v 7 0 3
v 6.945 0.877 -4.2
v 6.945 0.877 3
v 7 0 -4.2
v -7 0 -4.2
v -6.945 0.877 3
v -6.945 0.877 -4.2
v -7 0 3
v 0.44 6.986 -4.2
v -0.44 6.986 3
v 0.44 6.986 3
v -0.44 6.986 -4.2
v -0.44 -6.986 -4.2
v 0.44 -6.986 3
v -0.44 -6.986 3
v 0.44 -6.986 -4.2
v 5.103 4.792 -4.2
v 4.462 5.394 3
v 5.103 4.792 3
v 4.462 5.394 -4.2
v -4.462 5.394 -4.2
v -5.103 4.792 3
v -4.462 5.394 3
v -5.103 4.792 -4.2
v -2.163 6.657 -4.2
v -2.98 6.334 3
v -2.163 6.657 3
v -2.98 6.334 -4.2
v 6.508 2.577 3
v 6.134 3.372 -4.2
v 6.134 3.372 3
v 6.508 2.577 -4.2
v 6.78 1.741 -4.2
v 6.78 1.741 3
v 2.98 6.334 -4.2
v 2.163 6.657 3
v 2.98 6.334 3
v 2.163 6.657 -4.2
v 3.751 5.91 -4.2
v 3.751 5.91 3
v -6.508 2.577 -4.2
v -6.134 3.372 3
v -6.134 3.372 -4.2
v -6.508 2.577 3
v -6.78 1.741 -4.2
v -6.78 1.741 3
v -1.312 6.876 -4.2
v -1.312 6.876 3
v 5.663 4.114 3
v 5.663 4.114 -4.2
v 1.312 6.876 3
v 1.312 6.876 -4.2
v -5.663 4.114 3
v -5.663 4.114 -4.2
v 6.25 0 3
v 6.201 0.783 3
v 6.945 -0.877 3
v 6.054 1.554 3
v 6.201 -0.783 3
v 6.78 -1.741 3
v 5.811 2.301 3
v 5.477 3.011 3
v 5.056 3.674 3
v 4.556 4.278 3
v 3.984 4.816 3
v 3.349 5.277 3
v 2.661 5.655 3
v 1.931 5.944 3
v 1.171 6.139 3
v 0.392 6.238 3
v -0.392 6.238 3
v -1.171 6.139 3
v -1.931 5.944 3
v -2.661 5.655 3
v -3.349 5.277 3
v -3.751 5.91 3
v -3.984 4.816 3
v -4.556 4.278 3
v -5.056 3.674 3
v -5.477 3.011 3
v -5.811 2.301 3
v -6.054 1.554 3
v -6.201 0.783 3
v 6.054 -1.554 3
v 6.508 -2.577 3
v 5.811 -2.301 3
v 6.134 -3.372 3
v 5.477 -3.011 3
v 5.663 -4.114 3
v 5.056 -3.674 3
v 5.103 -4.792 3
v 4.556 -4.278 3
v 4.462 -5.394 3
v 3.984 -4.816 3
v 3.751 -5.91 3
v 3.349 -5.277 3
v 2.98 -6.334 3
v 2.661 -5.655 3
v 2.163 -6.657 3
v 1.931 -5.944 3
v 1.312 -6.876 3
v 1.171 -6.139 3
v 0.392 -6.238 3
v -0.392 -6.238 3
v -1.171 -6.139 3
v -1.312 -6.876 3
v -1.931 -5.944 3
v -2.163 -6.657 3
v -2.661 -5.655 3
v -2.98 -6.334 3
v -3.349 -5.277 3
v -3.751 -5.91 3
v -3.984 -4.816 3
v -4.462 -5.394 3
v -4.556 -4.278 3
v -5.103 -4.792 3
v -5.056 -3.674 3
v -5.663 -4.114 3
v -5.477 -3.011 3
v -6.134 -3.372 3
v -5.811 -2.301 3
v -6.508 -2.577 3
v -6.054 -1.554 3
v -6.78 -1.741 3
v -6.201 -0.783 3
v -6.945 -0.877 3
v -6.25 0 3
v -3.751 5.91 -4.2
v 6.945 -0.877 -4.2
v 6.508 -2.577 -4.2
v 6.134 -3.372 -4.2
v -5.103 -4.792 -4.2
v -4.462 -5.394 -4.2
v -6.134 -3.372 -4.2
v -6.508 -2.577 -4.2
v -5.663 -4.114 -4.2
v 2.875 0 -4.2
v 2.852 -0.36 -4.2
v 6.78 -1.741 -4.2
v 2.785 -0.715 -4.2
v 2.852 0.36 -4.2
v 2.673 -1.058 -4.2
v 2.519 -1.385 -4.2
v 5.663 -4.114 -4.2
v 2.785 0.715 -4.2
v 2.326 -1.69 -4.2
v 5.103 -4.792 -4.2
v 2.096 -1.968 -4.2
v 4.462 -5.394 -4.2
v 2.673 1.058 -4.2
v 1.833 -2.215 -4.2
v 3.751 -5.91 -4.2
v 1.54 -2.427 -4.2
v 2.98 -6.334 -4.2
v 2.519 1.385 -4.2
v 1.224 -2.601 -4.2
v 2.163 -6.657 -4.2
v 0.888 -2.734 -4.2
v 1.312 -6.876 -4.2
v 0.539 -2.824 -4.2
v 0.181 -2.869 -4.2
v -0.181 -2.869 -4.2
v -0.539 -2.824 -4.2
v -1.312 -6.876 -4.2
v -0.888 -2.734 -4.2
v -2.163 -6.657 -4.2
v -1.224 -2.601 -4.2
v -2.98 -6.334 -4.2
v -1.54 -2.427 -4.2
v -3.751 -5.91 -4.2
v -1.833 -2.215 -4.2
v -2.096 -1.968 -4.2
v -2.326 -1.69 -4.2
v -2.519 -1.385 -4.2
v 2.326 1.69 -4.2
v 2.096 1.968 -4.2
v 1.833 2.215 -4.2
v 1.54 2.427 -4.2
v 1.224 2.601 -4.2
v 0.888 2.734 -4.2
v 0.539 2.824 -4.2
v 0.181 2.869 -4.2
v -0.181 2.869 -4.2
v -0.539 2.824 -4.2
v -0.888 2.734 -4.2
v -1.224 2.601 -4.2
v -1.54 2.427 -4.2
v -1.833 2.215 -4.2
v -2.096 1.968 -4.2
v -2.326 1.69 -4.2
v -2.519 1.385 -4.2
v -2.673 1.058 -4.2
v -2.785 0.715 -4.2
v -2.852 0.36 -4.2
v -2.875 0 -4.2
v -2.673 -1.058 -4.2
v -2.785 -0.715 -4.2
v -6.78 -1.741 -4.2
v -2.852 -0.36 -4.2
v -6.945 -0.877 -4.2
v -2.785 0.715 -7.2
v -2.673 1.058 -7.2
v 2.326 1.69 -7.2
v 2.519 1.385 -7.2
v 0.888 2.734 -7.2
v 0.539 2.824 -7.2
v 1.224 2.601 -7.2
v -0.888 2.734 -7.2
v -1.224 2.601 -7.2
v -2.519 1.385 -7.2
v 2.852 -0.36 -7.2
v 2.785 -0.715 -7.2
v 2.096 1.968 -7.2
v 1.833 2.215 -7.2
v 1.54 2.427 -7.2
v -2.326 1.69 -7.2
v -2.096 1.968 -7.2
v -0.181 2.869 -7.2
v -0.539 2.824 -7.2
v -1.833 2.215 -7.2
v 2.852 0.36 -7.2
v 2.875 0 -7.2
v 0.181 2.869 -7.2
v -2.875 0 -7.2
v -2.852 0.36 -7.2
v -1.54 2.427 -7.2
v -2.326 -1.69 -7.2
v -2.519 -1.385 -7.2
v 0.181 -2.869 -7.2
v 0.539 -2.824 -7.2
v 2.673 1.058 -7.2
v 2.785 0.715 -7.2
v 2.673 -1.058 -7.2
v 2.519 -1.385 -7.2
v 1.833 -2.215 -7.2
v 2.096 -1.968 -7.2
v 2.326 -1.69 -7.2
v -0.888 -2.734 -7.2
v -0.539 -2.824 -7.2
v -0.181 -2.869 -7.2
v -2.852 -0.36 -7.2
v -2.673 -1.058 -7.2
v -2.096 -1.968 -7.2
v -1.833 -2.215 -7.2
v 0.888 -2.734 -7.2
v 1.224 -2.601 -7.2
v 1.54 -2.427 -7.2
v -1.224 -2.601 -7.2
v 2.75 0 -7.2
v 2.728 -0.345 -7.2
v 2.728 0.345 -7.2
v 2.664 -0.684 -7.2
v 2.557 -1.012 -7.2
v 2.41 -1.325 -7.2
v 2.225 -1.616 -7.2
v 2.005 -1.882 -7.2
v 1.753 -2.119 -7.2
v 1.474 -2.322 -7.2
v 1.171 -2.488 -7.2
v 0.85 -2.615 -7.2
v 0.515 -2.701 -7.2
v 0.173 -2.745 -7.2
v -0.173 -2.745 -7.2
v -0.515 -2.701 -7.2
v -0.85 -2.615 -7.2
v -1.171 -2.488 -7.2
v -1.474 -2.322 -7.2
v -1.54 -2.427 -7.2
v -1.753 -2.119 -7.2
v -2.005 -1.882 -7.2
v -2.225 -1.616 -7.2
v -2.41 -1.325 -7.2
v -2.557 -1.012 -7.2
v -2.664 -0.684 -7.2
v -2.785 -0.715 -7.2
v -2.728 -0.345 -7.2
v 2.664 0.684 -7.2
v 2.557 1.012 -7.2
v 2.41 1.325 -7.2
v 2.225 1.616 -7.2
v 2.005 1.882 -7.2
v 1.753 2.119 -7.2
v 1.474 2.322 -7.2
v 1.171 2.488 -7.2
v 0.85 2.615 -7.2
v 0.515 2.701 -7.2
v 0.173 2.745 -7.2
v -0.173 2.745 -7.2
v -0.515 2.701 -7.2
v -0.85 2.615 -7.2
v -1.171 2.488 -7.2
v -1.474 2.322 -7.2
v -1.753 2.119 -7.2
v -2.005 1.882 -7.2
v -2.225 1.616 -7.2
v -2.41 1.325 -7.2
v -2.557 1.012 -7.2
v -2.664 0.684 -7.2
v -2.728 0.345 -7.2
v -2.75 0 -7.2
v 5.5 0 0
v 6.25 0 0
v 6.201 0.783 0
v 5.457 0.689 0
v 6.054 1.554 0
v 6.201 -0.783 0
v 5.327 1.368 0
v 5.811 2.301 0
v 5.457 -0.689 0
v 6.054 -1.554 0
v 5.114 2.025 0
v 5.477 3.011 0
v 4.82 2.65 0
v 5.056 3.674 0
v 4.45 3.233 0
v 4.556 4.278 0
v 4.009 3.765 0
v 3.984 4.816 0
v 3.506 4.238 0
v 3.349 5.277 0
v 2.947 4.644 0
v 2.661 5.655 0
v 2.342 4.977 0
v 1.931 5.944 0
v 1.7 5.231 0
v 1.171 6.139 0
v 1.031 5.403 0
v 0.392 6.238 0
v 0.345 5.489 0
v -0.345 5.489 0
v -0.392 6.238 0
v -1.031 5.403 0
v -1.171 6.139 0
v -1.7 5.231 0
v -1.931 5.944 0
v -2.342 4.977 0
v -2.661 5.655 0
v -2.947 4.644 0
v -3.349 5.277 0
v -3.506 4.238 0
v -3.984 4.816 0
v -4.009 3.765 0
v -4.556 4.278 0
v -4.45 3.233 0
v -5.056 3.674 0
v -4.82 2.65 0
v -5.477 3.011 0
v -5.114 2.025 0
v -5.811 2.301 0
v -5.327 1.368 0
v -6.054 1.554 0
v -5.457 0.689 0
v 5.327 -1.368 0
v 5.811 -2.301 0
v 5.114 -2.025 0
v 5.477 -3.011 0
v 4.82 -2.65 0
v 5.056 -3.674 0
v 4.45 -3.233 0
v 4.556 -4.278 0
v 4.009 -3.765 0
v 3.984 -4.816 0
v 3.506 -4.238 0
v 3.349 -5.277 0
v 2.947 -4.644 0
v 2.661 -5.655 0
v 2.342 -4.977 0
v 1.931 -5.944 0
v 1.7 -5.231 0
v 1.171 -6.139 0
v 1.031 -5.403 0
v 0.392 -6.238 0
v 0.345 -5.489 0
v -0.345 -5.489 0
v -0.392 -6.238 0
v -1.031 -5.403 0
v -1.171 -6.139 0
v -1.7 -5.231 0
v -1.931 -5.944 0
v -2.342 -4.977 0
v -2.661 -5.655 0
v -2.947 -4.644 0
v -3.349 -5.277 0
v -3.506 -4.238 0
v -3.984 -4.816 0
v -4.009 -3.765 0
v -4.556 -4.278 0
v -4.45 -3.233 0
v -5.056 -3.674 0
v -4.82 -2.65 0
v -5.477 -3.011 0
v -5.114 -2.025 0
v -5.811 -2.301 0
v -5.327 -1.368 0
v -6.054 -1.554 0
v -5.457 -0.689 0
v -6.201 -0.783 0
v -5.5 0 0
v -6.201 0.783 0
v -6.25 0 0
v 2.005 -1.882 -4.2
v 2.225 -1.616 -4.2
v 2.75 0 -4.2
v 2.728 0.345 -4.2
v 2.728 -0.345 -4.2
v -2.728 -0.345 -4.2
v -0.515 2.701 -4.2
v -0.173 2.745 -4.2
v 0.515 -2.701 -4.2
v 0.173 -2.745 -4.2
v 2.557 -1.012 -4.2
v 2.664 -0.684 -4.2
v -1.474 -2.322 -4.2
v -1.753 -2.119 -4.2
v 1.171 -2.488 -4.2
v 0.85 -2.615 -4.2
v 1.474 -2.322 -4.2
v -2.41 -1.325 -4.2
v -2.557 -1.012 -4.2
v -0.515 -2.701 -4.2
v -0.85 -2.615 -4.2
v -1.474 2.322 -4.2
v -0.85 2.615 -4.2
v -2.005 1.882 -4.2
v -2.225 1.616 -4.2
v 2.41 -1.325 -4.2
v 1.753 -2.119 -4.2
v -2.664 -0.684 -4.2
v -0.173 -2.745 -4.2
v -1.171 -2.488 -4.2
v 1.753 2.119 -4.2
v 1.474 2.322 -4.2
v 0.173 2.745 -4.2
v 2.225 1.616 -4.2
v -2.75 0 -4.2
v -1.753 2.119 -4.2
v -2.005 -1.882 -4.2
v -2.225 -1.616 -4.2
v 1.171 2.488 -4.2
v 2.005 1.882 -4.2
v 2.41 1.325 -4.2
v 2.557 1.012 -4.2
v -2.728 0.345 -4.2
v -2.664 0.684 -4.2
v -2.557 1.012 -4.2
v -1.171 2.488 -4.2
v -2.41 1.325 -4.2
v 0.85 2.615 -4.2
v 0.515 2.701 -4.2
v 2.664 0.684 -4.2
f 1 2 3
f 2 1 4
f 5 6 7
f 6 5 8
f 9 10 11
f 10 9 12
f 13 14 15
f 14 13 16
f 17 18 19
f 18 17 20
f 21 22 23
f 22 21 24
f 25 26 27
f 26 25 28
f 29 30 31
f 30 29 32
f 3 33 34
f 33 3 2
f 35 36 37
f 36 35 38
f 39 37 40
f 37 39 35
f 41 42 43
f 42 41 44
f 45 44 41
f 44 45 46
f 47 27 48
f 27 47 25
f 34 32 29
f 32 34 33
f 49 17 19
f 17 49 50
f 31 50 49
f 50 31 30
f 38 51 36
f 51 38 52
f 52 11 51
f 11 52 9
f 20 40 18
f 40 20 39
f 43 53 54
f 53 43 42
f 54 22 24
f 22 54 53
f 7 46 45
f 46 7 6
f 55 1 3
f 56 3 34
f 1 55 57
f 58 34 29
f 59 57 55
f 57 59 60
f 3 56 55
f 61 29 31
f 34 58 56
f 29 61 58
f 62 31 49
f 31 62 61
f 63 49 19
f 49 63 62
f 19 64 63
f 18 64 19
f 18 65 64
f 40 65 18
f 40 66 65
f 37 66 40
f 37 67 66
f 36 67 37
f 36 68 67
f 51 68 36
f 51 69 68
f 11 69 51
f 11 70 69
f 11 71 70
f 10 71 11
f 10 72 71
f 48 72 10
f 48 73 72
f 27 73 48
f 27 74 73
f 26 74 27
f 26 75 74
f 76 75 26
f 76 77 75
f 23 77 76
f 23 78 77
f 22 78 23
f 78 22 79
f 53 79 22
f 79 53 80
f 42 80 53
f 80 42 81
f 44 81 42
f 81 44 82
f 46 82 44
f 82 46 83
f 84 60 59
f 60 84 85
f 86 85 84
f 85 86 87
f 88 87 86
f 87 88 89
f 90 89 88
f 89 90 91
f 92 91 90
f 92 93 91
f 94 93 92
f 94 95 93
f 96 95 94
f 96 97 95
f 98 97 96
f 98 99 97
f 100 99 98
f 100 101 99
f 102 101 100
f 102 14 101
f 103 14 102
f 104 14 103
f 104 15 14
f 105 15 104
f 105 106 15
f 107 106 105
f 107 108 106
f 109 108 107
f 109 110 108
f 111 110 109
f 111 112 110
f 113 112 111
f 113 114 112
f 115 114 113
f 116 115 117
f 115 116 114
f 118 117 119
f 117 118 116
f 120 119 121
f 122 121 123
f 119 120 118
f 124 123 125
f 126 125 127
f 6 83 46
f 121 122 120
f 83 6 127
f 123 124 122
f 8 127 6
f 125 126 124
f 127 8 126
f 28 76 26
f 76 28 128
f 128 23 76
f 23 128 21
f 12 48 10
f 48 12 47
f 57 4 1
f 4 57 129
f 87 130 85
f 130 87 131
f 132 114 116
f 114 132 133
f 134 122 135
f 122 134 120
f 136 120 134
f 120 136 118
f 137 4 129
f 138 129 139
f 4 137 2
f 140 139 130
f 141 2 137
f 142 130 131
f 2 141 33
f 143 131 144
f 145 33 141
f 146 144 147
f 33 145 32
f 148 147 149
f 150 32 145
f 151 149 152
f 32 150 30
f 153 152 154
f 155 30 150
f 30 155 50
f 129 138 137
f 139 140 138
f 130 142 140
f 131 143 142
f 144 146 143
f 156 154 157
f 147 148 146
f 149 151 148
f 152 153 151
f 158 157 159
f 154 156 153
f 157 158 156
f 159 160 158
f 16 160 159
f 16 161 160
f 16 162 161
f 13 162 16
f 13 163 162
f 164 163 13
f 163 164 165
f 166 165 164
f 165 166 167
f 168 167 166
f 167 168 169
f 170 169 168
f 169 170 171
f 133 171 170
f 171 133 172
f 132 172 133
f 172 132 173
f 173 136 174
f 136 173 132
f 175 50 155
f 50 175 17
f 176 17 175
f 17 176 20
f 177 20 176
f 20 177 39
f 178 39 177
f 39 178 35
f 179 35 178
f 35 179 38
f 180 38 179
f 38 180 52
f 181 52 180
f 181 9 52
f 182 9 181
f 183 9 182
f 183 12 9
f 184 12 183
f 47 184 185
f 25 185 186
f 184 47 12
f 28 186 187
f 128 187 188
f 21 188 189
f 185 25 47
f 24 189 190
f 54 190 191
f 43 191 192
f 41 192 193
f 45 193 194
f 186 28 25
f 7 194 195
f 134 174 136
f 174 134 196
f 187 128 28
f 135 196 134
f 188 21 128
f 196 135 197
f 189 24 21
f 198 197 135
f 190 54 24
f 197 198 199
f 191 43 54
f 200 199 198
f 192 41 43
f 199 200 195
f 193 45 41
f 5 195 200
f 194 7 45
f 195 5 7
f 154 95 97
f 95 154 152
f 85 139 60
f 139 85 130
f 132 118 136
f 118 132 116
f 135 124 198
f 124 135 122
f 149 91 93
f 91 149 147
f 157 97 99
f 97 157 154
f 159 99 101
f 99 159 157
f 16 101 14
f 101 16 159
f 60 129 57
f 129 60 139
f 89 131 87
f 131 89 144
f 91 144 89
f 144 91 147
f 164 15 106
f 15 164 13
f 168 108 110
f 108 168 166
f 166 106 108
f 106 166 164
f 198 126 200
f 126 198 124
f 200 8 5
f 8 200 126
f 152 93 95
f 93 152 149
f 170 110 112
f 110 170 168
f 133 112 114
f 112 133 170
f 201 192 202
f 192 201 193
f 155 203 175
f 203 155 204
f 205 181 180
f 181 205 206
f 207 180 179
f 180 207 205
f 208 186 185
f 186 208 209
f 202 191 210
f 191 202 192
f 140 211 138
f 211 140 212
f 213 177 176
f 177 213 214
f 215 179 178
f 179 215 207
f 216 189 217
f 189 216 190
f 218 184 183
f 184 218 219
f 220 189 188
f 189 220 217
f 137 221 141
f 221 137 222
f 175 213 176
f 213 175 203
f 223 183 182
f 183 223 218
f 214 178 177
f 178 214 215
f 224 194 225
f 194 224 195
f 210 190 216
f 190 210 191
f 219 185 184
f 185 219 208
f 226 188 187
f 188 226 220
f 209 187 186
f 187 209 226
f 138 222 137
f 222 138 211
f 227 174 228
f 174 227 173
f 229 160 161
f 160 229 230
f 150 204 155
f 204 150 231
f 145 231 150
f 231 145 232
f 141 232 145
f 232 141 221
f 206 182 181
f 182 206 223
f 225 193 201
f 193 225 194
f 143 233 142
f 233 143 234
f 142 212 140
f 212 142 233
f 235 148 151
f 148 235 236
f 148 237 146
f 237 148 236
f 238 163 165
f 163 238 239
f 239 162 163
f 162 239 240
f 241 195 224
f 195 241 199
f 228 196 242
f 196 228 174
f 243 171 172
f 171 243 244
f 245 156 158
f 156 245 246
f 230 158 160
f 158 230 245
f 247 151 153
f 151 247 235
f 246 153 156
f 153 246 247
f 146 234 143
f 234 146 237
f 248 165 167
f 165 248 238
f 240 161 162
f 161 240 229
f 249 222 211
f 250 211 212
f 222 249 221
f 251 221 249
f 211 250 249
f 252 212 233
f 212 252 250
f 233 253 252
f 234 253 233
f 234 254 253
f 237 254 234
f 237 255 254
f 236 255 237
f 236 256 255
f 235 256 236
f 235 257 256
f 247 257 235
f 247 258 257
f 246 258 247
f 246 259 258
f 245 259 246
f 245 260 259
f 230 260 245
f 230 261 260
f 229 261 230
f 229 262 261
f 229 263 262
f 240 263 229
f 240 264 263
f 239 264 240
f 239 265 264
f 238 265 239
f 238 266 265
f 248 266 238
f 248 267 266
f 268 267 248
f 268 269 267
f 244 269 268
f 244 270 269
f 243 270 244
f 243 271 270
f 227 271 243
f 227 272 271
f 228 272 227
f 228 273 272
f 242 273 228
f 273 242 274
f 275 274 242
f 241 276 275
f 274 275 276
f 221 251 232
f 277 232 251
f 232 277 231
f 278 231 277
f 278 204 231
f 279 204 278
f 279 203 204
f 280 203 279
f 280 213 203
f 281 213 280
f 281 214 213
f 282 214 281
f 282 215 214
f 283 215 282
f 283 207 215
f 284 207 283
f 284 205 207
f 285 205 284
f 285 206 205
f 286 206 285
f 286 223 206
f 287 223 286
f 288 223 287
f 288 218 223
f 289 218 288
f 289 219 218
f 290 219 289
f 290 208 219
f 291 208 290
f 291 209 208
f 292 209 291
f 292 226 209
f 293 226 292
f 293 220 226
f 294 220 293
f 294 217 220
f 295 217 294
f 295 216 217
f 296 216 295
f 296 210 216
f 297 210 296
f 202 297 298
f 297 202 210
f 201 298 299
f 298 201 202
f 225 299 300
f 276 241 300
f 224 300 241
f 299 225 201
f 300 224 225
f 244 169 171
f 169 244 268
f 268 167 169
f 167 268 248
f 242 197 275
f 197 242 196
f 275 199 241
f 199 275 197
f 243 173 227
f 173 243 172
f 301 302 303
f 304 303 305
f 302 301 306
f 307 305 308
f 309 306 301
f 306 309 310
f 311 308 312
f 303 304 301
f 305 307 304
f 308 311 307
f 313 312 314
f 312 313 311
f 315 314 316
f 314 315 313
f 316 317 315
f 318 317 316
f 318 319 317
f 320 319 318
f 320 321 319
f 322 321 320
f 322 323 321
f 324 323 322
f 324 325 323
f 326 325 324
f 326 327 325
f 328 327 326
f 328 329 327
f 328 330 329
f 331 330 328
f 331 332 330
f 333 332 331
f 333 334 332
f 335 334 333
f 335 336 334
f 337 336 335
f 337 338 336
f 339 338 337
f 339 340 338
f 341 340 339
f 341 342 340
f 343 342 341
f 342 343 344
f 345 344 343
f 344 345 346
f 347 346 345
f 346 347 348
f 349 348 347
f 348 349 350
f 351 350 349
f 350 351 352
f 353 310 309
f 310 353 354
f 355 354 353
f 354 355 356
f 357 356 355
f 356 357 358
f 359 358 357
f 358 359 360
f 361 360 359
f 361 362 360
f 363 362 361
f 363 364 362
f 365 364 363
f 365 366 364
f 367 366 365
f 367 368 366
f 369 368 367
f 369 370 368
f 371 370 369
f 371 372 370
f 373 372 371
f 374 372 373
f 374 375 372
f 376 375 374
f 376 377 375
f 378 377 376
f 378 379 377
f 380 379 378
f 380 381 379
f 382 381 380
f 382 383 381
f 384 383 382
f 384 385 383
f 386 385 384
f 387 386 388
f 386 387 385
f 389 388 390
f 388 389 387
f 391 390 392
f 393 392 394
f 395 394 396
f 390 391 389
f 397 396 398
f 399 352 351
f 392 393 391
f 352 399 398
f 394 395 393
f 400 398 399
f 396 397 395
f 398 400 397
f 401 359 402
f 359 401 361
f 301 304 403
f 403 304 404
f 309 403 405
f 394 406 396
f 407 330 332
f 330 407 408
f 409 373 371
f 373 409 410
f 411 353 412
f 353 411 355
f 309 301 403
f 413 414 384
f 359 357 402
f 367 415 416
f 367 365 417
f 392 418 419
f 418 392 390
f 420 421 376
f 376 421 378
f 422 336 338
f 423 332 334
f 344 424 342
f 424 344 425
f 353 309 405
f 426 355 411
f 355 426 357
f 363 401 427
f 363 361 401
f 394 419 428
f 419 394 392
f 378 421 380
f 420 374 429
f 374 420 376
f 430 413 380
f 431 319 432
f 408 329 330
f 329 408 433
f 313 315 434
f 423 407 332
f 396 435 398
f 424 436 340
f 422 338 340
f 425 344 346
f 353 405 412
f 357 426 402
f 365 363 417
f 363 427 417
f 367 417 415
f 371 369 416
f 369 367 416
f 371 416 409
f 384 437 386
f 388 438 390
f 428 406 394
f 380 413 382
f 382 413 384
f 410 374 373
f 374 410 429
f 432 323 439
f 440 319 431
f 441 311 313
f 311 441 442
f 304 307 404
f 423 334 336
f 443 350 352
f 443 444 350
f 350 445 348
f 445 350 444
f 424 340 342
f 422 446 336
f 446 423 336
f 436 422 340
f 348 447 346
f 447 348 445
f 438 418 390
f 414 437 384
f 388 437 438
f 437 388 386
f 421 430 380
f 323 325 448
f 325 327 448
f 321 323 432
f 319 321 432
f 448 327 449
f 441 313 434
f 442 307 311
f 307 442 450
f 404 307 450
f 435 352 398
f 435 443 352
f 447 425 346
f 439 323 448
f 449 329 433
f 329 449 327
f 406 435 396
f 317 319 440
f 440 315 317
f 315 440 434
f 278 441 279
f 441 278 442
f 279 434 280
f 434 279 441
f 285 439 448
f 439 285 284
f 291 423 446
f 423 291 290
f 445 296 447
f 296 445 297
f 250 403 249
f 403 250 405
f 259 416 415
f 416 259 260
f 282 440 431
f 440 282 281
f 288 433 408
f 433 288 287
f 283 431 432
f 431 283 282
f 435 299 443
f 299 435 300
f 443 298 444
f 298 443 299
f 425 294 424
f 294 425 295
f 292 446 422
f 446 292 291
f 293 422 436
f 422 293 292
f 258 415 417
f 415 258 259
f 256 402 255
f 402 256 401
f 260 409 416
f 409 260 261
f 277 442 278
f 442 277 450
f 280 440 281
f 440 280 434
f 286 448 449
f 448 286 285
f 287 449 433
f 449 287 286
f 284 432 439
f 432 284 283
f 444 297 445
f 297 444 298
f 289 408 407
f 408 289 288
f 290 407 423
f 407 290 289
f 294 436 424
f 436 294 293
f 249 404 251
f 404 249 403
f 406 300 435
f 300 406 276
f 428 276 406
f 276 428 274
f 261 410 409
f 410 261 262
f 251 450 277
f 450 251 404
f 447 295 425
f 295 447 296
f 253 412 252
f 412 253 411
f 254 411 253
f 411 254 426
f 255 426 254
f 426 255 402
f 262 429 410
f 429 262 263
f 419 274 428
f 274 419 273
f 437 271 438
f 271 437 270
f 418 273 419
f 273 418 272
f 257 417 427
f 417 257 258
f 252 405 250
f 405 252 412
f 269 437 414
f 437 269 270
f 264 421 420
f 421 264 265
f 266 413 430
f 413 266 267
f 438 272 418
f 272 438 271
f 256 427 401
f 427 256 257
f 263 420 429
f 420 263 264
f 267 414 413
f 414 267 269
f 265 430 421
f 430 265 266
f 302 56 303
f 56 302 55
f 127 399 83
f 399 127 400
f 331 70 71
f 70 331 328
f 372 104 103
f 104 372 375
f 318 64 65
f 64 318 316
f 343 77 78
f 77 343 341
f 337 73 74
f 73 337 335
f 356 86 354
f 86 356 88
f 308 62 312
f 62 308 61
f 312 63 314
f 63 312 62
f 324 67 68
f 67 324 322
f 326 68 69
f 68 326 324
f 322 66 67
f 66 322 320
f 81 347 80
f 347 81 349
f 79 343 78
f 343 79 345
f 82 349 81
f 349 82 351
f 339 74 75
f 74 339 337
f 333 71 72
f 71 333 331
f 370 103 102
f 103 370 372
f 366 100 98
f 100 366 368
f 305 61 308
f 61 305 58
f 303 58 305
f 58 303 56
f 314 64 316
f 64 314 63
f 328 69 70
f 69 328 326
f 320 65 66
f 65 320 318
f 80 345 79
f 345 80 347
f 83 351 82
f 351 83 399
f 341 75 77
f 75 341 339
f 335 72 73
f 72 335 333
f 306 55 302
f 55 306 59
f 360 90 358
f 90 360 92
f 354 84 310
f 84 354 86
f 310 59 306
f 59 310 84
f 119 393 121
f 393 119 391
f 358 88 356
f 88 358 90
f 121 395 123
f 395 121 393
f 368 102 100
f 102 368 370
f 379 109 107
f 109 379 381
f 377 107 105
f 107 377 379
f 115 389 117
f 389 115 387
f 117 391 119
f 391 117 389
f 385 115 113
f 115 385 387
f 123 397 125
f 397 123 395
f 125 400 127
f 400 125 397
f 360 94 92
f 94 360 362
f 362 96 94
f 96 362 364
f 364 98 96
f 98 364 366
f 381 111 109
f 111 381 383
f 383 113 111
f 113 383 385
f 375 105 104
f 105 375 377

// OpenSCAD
$fn = 50;

difference() {
	union() {
		translate(v = [0, 0, -4.2]) {
			cylinder(h = 7.2, r = 7.0);
		}
		#translate(v = [0, 0, -7.2]) {
			cylinder(h = 7.2, r = 2.875);
		}
	}
	union() {
		translate(v = [0, 0, 0]) {
			rotate(a = [0, 0, 0]) {
				difference() {
					union() {
						translate(v = [0, 0, -7.2]) {
							cylinder(h = 7.2, r = 2.25);
						}
						translate(v = [0, 0, -4.2]) {
							cylinder(h = 4.2, r1 = 2.75, r2 = 5.5);
						}
						translate(v = [0, 0, -7.2]) {
							cylinder(h = 7.2, r = 2.75);
						}
						translate(v = [0, 0, -7.2]) {
							cylinder(h = 7.2, r = 2.25);
						}
					}
					union();
				}
			}
		}
		#cylinder(h = 3, r = 6.25);
	}
}
